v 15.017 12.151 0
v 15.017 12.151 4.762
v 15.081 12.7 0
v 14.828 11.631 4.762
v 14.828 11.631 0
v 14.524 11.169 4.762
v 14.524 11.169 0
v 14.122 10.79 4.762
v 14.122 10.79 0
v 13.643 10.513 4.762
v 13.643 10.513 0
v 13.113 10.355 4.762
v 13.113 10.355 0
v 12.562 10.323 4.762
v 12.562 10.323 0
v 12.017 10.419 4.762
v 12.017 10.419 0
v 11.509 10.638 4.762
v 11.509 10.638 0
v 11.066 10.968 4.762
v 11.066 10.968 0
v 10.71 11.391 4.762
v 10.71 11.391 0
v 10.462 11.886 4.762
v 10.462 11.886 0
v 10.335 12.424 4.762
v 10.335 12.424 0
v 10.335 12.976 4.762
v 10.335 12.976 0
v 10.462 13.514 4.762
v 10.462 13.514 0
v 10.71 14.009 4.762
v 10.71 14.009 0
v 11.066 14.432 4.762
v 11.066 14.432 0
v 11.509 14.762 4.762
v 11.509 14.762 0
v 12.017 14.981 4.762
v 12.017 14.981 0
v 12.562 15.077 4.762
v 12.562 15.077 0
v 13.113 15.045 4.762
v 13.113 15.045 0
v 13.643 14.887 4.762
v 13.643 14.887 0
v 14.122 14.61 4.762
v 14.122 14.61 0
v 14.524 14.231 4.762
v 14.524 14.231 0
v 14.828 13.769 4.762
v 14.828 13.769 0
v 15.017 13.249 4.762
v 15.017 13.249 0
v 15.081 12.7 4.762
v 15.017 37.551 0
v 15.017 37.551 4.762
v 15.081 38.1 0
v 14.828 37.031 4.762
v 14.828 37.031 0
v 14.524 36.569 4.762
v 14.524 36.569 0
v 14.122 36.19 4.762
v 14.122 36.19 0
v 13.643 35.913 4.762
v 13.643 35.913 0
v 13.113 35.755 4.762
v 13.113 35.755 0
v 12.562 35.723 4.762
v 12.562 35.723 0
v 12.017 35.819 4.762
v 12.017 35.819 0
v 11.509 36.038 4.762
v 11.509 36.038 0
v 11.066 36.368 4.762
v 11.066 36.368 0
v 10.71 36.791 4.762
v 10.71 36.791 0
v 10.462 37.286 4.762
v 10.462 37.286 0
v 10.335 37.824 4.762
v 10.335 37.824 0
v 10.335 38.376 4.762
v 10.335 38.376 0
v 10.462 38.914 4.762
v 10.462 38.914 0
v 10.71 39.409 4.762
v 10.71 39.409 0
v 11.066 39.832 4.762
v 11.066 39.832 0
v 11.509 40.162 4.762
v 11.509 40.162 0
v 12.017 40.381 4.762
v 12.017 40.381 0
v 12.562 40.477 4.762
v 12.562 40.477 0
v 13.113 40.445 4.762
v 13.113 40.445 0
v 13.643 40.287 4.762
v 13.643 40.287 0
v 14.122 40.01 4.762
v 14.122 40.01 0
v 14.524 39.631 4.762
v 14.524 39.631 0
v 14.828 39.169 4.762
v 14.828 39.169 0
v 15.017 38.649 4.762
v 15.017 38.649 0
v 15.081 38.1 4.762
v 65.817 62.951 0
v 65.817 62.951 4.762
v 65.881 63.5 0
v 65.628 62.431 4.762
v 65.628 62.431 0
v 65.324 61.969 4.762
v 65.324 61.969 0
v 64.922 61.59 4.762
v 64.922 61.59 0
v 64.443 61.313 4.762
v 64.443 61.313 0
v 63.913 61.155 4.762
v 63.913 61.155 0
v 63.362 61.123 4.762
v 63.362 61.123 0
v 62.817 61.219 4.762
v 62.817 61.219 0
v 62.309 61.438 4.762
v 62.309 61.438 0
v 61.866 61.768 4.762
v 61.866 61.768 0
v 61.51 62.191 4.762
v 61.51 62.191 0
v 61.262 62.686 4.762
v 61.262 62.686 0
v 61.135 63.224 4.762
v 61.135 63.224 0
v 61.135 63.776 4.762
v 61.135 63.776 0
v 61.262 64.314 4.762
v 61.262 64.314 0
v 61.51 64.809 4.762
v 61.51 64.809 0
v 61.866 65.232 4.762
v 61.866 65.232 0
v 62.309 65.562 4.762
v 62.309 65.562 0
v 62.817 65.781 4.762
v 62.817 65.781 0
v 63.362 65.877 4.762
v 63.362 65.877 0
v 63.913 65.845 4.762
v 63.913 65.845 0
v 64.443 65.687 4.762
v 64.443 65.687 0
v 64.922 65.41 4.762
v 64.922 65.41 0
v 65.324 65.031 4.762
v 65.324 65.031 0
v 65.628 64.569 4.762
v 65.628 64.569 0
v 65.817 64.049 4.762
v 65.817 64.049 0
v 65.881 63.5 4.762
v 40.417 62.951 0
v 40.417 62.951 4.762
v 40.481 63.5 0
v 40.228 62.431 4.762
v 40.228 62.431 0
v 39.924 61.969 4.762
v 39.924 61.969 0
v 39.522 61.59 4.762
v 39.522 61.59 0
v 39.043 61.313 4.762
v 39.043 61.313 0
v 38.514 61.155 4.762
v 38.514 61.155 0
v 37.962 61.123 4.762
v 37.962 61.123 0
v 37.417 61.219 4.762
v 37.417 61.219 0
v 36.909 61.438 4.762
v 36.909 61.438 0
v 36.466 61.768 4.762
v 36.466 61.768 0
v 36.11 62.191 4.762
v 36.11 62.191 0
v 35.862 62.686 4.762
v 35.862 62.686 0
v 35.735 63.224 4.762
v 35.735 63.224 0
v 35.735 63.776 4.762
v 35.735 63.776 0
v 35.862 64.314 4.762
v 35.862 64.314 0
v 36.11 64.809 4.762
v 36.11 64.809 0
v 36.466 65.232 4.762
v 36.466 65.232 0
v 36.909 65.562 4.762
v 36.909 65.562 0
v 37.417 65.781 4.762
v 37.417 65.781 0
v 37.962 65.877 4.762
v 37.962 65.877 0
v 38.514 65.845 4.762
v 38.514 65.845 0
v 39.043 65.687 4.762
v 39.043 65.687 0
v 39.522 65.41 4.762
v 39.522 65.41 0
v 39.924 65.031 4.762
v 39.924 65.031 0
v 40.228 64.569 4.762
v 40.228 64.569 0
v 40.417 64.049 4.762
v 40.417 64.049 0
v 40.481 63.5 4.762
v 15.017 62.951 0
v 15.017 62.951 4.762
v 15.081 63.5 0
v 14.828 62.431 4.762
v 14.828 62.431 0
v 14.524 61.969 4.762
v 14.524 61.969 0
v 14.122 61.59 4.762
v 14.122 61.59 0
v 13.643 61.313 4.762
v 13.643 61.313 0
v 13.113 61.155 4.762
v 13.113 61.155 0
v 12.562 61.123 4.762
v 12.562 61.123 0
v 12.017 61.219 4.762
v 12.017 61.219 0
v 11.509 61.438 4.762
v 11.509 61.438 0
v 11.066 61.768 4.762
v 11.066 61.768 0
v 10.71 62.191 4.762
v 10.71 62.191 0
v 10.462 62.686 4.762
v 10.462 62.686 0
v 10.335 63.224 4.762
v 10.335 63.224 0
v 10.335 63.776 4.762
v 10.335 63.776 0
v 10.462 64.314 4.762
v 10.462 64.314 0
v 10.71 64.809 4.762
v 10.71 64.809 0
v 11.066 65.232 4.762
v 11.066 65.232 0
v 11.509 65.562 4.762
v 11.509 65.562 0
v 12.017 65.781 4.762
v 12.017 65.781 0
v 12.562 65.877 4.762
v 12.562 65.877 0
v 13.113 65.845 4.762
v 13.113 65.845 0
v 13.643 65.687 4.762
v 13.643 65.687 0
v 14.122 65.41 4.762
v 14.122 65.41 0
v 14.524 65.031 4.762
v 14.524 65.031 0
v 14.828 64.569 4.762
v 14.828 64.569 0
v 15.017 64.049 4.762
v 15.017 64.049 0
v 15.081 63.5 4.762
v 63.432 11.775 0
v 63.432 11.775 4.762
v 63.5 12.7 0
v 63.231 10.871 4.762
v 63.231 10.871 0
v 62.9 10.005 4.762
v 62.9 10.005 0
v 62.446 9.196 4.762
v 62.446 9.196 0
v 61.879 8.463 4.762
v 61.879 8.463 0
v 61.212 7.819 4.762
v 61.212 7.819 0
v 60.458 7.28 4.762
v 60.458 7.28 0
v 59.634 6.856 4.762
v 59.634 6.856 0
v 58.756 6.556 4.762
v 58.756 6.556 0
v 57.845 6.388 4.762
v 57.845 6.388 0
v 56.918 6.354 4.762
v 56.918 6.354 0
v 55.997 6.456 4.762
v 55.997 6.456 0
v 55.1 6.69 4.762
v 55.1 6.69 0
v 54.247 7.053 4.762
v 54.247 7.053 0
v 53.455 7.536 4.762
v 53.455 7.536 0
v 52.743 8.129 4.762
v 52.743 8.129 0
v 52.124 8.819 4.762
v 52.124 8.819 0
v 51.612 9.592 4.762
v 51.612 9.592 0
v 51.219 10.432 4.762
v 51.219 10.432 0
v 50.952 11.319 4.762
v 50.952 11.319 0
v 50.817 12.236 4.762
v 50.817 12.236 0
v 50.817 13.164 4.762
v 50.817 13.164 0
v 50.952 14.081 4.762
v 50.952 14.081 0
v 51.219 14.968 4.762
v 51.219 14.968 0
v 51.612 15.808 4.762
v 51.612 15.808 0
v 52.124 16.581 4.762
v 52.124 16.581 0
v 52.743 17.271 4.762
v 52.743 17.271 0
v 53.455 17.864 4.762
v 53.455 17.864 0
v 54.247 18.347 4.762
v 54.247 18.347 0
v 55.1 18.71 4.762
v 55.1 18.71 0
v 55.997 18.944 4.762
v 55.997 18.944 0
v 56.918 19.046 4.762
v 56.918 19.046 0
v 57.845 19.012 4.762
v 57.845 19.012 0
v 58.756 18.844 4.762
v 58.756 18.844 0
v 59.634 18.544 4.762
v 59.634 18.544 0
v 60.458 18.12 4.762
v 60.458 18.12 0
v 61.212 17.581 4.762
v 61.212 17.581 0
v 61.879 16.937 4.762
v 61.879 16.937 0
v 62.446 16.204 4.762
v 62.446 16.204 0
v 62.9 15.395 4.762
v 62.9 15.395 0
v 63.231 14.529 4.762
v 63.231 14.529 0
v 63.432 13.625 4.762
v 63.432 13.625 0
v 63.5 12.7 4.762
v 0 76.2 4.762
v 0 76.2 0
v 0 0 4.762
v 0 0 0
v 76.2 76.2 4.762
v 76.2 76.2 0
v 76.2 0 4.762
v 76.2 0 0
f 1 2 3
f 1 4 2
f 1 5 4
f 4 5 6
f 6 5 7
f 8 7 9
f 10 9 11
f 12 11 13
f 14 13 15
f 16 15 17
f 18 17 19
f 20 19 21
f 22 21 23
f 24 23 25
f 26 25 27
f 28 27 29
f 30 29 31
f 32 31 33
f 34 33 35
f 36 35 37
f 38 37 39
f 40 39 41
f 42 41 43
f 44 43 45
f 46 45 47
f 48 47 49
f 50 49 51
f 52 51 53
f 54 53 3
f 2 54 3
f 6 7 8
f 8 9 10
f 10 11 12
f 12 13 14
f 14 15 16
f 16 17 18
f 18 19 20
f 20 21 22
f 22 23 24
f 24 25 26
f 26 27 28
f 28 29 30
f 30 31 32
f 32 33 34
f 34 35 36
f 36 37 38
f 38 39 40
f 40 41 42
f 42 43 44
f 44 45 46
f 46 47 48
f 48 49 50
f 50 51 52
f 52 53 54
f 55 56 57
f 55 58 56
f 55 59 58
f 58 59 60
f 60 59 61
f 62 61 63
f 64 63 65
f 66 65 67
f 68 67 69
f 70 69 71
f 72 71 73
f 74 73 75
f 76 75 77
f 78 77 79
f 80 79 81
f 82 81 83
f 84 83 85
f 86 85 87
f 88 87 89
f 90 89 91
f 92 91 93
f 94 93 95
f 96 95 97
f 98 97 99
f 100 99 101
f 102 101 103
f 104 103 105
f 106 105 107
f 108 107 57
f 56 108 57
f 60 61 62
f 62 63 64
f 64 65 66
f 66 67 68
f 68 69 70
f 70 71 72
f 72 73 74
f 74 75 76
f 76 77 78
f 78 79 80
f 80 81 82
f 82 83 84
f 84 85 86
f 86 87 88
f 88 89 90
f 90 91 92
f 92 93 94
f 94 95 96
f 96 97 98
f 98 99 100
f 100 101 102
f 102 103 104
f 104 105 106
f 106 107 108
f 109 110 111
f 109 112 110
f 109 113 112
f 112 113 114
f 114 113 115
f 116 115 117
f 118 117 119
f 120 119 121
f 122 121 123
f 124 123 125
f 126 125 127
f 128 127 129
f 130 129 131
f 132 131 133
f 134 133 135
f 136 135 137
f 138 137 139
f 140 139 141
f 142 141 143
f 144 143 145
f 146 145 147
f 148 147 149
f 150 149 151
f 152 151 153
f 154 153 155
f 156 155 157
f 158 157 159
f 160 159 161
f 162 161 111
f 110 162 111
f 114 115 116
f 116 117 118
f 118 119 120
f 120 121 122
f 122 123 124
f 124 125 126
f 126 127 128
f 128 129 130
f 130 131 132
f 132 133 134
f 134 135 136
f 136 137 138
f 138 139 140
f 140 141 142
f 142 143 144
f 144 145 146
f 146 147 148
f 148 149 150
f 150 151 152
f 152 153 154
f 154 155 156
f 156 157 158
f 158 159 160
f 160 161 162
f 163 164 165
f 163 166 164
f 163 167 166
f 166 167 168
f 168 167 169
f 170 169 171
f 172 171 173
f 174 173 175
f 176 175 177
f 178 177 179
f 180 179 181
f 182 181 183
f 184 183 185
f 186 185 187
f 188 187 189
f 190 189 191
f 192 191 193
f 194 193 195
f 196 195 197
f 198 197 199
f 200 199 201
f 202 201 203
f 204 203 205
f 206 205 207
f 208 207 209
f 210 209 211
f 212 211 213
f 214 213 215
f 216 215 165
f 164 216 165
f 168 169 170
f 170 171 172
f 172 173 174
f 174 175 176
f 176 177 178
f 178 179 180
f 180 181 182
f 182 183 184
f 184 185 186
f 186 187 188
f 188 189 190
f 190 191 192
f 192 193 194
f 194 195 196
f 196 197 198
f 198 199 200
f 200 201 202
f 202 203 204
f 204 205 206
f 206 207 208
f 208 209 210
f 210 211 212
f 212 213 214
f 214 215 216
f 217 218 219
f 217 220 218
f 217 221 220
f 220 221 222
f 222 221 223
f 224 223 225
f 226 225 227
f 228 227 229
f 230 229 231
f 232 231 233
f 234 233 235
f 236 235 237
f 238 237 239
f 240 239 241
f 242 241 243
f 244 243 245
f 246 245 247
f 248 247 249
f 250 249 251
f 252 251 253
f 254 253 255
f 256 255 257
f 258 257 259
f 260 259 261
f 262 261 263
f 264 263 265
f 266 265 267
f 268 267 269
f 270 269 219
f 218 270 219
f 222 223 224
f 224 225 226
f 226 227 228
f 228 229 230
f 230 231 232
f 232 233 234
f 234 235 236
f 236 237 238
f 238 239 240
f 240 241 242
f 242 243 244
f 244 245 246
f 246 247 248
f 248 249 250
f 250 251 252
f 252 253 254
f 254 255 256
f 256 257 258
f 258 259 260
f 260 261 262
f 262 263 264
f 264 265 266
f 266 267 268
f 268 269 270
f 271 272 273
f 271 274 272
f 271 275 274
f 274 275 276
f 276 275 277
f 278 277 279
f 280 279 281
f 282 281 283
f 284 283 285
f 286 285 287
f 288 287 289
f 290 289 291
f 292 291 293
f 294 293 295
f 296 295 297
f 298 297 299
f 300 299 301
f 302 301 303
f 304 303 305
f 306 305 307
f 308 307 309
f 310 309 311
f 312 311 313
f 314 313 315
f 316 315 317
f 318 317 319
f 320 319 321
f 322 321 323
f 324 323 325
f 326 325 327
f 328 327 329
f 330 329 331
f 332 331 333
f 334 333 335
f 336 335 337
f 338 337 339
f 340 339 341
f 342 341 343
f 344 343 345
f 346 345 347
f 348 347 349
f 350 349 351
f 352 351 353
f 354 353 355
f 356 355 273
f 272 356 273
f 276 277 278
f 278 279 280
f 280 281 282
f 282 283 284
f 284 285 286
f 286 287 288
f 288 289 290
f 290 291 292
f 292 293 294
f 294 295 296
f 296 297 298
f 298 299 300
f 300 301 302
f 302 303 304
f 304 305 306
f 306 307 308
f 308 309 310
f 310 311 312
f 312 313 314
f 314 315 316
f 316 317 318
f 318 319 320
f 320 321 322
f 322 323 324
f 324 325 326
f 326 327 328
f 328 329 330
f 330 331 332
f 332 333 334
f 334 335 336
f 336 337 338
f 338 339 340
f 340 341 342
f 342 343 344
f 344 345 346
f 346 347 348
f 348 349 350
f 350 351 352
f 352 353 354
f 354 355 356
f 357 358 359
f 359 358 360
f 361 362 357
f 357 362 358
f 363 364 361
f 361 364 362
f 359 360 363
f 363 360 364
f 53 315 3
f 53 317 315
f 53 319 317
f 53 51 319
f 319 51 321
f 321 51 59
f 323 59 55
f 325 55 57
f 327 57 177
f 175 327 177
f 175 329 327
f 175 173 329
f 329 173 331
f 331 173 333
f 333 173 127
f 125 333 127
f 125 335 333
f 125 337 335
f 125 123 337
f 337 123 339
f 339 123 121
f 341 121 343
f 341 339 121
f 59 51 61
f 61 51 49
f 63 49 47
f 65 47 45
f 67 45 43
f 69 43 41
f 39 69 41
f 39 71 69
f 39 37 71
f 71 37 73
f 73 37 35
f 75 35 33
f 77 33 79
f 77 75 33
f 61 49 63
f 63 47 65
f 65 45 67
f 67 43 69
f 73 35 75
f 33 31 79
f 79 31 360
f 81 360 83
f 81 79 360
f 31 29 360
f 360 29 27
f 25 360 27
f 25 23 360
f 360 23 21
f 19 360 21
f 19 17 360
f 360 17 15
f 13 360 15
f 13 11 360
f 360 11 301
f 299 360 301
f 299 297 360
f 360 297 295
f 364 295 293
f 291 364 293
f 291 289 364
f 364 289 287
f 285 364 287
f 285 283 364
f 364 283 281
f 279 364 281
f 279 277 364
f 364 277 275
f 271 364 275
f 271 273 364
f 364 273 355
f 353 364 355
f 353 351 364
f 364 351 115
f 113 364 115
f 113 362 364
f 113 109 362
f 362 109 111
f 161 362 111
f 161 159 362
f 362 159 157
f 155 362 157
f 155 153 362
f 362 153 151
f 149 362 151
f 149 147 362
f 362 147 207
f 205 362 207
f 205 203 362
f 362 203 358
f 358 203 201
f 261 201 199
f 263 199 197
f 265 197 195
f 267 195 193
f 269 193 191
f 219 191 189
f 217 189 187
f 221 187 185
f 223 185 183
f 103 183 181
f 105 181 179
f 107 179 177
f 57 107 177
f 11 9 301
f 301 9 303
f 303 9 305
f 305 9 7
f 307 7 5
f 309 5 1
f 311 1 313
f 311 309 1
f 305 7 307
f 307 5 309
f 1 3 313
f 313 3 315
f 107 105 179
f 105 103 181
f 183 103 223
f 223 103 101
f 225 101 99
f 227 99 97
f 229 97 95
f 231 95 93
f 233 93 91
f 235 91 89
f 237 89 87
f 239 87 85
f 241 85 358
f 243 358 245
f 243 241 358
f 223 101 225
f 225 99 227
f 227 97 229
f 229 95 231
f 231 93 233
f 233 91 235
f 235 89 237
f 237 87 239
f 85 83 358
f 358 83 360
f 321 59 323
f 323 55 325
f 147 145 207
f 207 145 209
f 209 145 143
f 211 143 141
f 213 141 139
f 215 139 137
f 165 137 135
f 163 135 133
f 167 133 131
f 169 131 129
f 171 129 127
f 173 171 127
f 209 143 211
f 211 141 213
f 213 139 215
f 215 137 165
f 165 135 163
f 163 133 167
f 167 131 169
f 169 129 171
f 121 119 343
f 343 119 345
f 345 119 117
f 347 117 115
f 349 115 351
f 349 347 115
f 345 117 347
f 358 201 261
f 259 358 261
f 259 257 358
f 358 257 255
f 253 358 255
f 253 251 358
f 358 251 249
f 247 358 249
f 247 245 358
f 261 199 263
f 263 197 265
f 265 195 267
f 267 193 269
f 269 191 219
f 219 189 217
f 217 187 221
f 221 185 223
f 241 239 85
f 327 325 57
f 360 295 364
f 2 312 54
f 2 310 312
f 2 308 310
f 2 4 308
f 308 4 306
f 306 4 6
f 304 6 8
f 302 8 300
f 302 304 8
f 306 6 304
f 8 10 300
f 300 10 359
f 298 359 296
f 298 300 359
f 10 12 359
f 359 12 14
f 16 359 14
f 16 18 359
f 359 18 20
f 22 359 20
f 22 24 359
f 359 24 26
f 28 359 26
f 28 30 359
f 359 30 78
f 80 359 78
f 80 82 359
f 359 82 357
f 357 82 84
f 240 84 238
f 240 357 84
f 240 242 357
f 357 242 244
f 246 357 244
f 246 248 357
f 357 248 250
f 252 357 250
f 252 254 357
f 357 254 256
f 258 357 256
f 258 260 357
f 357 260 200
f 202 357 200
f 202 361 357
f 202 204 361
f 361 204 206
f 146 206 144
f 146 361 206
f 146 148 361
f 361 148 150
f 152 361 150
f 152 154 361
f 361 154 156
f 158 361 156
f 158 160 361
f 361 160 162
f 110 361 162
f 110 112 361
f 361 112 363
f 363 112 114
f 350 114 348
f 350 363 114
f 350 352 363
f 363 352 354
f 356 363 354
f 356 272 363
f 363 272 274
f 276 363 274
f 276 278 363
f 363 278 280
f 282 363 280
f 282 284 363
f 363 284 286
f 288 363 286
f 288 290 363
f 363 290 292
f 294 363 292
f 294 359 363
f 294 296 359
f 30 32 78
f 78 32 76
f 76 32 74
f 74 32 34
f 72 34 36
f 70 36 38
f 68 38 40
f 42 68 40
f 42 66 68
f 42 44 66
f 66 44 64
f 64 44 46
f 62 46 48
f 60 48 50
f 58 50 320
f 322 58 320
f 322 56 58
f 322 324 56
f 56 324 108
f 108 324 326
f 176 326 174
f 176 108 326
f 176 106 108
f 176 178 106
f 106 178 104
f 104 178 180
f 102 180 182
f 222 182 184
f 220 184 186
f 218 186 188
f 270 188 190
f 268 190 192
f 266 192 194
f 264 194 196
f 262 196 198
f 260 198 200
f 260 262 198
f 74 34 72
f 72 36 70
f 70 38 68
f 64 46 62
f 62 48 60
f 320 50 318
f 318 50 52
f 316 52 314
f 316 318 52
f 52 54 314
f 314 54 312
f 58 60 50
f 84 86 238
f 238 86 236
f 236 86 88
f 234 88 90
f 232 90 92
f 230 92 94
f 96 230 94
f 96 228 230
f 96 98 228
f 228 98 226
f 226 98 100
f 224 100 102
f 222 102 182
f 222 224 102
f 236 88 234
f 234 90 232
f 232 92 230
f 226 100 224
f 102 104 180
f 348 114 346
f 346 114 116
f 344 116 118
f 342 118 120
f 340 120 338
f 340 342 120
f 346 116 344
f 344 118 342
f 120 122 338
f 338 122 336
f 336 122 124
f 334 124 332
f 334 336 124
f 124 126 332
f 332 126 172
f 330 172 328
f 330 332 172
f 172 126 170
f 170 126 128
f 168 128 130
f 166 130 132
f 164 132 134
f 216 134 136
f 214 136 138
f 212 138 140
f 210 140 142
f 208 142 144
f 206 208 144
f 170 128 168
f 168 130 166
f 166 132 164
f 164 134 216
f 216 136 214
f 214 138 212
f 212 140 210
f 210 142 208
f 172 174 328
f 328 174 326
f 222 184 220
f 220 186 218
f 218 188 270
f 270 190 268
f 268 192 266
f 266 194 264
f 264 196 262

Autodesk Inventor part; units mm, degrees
ref_plane "YZ Plane" through (0, 0, 0) normal (1, 0, 0) x (0, 1, 0)
ref_plane "XZ Plane" through (0, 0, 0) normal (0, 1, 0) x (-1, 0, 0)
ref_plane "XY Plane" through (0, 0, 0) normal (0, 0, 1) x (1, 0, 0)
sketch "Sketch1" plane through (0, 0, 0) normal (0, 0, 1) x (1, 0, 0)
  line L0 (0, 0) -> (76.2, 0)
  line L1 (76.2, 0) -> (76.2, 76.2)
  line L2 (76.2, 76.2) -> (0, 76.2)
  line L3 (0, 76.2) -> (0, 0)
  dimension "d0" = 76.2
  dimension "d1" = 76.2
extrude "Extrusion1" add sketch "Sketch1" along normal blind 4.7625
sketch "Sketch2" plane through (0, 0, 4.7625) normal (0, 0, 1) x (1, 0, 0)
  line L0 (0, 0) -> (0, 76.2) projected
  line L1 (76.2, 0) -> (0, 0) projected
  circle A0 centre (57.15, 12.7) radius 6.35
  dimension "d4" = 12.7
  dimension "d5" = 12.7
  dimension "d6" = 57.15
extrude "Extrusion2" cut sketch "Sketch2" against normal up to next
sketch "Sketch3" plane through (0, 0, 4.7625) normal (0, 0, 1) x (1, 0, 0)
  line L0 (0, 0) -> (0, 76.2) projected
  line L1 (0, 76.2) -> (76.2, 76.2) projected
  circle A0 centre (12.7, 63.5) radius 2.3813
  dimension "d9" = 4.7625
  dimension "d10" = 12.7
  dimension "d11" = 12.7
extrude "Extrusion3" cut sketch "Sketch3" against normal up to next
pattern_linear "Rectangular Pattern1" count 3 spacing 25.4 along (1, 0, 0) of "Extrusion3"
pattern_linear "Rectangular Pattern2" count 3 spacing 25.4 along (0, -1, 0) of "Extrusion3"
properties part number "Frame_TopRearRollerPlate"
